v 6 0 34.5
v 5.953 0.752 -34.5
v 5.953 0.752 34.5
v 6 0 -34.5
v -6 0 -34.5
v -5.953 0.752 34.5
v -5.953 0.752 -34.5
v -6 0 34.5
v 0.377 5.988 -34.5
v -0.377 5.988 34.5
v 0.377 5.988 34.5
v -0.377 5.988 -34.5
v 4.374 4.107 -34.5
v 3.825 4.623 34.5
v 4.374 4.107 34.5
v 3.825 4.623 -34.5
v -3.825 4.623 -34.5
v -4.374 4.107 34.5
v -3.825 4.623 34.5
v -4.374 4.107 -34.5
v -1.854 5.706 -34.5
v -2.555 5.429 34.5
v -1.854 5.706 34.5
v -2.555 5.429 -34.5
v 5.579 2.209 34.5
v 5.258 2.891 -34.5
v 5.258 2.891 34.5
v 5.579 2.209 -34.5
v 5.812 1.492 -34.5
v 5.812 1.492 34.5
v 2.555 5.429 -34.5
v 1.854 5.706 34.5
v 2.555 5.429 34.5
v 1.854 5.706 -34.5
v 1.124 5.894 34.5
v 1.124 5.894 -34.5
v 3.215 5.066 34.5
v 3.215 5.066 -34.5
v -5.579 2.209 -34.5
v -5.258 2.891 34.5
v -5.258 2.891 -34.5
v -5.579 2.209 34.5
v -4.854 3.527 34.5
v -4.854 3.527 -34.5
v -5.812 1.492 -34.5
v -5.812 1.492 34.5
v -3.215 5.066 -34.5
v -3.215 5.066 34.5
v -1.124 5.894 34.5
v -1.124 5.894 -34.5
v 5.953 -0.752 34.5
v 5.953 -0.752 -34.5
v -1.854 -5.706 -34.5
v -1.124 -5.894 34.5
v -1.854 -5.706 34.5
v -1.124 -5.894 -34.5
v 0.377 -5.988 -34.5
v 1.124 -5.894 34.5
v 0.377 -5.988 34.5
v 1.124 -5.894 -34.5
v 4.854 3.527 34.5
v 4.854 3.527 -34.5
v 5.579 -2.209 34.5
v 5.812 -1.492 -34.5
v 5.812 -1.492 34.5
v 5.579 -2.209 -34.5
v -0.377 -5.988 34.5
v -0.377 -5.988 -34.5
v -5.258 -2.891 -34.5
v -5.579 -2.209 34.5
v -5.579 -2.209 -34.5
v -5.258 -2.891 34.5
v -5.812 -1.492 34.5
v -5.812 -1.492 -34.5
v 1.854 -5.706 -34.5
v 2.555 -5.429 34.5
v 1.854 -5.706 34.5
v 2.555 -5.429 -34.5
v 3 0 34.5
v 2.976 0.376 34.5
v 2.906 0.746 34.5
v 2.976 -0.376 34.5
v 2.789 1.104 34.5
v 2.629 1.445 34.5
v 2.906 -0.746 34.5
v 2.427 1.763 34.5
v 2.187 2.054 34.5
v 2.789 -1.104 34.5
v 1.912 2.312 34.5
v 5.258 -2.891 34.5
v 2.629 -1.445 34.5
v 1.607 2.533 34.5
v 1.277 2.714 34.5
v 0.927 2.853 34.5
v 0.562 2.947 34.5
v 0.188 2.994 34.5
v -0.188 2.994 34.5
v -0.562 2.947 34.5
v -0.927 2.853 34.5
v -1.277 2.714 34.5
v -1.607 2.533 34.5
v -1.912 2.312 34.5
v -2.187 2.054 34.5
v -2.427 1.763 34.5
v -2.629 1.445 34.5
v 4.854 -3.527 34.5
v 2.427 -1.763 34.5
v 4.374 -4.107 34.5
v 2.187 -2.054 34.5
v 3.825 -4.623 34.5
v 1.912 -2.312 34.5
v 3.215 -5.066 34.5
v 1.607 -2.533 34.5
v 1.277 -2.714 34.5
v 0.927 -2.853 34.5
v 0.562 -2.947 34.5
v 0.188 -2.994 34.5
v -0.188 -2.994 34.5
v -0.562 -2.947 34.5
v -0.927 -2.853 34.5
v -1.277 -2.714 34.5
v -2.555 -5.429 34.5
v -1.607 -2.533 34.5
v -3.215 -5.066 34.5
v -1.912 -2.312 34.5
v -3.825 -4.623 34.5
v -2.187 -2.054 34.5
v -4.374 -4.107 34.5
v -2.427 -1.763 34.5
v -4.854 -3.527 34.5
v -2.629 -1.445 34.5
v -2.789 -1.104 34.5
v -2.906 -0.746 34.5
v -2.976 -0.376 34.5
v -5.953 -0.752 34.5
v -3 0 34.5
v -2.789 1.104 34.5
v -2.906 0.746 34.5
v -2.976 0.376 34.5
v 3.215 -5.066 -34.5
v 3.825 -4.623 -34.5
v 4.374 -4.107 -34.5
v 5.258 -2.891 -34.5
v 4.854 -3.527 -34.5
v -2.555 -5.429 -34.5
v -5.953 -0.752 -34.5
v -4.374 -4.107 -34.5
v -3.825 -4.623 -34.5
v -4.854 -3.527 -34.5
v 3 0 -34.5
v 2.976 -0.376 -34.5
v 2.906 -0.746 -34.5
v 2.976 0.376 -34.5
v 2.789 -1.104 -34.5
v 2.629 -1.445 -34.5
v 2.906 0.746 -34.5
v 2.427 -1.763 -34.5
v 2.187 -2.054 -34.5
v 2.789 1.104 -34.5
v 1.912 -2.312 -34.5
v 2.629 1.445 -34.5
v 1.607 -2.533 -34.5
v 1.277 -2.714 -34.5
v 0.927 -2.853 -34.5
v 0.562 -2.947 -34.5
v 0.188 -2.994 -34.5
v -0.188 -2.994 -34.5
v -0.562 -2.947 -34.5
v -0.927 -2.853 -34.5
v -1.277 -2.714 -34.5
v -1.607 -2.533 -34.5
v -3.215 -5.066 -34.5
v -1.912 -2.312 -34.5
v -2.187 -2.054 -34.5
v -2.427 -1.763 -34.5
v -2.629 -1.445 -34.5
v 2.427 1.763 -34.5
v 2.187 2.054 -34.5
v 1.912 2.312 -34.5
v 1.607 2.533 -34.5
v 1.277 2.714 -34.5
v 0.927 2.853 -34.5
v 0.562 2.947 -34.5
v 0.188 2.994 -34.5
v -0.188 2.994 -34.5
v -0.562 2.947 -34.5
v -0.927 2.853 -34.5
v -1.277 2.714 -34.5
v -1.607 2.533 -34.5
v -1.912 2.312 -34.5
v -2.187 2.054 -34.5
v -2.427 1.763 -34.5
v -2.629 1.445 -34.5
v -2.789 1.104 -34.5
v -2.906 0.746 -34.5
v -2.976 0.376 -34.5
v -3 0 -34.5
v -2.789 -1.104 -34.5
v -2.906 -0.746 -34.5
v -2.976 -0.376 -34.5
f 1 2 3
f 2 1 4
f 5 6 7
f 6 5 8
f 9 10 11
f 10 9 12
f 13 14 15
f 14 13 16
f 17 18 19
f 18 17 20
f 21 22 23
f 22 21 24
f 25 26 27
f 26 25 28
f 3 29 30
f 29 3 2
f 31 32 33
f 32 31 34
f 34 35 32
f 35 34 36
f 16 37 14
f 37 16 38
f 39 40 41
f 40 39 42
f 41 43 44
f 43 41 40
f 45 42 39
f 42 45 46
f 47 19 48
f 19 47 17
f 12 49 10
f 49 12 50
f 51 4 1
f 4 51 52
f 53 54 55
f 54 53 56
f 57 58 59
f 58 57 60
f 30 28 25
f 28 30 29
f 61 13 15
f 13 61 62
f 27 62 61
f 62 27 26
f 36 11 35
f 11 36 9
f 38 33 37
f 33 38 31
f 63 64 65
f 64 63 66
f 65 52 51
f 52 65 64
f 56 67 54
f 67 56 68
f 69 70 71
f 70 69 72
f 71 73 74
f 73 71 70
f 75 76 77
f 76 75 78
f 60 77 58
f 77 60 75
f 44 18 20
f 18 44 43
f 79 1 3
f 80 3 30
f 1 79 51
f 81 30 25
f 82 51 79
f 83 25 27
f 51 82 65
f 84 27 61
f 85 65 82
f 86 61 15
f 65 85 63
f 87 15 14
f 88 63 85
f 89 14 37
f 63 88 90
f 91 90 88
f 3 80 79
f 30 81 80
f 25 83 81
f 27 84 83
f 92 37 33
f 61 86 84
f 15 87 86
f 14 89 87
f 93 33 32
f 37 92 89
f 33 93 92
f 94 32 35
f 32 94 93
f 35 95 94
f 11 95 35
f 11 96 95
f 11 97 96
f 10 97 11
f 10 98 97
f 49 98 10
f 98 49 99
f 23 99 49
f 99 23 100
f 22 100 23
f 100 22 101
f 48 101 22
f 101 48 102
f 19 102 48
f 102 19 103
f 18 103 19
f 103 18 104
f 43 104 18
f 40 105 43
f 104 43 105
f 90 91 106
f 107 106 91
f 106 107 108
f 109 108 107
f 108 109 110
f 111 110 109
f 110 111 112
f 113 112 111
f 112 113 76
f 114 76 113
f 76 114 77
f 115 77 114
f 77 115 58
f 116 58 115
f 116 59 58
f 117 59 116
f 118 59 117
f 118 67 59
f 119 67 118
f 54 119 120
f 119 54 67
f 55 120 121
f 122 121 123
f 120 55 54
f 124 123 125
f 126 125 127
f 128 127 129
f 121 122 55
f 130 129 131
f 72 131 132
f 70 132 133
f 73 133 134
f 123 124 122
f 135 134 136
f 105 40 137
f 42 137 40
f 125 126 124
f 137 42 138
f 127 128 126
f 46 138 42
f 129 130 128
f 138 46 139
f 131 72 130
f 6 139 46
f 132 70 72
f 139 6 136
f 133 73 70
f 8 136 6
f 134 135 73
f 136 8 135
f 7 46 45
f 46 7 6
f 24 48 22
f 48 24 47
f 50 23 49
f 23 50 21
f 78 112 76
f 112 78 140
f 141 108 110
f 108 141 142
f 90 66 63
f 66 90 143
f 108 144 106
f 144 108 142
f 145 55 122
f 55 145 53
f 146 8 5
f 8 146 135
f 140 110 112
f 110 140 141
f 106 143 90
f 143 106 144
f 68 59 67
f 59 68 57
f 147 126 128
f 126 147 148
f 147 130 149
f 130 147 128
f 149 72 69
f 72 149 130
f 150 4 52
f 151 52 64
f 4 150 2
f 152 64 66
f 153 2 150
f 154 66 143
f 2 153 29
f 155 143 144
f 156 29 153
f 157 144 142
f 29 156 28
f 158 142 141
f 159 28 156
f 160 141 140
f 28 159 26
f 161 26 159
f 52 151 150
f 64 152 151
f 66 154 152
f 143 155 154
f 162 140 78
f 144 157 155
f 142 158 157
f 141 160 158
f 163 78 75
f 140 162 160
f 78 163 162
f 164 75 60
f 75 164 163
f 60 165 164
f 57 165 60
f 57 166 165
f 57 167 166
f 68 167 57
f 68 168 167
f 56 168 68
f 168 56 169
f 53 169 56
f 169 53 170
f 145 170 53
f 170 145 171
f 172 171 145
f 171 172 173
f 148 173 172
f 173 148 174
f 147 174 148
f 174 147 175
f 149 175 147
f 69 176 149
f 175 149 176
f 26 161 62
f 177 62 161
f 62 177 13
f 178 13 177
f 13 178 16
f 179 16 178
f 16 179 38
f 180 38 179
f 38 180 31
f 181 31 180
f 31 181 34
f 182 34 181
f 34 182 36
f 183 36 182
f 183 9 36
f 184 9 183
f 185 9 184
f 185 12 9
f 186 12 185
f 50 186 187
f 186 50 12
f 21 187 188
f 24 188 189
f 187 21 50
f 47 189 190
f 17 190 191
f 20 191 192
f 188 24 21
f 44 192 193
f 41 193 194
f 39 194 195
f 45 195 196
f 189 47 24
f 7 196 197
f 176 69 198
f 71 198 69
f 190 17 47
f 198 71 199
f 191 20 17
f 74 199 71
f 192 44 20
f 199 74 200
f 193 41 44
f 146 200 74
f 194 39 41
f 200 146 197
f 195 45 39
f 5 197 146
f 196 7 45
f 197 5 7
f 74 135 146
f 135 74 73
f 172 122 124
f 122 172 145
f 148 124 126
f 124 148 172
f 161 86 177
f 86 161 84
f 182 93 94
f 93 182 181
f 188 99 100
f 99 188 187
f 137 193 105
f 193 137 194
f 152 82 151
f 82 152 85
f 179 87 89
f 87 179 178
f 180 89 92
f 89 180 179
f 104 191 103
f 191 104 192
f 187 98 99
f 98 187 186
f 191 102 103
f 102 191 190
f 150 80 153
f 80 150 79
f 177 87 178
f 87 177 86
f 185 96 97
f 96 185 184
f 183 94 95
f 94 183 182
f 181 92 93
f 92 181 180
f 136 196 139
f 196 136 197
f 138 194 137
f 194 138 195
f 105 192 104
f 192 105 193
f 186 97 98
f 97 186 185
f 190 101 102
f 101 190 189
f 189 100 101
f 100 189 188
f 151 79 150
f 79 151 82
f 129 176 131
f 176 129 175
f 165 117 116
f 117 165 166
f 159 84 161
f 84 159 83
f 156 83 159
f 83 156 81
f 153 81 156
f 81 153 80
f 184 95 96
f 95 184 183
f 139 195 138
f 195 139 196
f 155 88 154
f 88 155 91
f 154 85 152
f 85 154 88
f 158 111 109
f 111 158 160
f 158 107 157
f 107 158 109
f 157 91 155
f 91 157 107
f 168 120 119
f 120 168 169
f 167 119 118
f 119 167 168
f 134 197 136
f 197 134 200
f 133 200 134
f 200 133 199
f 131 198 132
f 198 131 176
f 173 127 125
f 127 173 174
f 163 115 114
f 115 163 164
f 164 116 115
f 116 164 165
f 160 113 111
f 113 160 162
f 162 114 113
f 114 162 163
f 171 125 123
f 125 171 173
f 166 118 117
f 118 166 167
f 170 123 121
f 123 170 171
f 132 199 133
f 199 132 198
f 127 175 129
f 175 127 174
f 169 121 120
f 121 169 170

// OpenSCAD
$fn = 50;


difference() {
	union() {
		translate(v = [0, 0, -34.5000000000]) {
			cylinder(h = 69, r = 6.0000000000);
		}
	}
	union() {
		translate(v = [0, 0, -100.0000000000]) {
			cylinder(h = 200, r = 3.0000000000);
		}
	}
}
